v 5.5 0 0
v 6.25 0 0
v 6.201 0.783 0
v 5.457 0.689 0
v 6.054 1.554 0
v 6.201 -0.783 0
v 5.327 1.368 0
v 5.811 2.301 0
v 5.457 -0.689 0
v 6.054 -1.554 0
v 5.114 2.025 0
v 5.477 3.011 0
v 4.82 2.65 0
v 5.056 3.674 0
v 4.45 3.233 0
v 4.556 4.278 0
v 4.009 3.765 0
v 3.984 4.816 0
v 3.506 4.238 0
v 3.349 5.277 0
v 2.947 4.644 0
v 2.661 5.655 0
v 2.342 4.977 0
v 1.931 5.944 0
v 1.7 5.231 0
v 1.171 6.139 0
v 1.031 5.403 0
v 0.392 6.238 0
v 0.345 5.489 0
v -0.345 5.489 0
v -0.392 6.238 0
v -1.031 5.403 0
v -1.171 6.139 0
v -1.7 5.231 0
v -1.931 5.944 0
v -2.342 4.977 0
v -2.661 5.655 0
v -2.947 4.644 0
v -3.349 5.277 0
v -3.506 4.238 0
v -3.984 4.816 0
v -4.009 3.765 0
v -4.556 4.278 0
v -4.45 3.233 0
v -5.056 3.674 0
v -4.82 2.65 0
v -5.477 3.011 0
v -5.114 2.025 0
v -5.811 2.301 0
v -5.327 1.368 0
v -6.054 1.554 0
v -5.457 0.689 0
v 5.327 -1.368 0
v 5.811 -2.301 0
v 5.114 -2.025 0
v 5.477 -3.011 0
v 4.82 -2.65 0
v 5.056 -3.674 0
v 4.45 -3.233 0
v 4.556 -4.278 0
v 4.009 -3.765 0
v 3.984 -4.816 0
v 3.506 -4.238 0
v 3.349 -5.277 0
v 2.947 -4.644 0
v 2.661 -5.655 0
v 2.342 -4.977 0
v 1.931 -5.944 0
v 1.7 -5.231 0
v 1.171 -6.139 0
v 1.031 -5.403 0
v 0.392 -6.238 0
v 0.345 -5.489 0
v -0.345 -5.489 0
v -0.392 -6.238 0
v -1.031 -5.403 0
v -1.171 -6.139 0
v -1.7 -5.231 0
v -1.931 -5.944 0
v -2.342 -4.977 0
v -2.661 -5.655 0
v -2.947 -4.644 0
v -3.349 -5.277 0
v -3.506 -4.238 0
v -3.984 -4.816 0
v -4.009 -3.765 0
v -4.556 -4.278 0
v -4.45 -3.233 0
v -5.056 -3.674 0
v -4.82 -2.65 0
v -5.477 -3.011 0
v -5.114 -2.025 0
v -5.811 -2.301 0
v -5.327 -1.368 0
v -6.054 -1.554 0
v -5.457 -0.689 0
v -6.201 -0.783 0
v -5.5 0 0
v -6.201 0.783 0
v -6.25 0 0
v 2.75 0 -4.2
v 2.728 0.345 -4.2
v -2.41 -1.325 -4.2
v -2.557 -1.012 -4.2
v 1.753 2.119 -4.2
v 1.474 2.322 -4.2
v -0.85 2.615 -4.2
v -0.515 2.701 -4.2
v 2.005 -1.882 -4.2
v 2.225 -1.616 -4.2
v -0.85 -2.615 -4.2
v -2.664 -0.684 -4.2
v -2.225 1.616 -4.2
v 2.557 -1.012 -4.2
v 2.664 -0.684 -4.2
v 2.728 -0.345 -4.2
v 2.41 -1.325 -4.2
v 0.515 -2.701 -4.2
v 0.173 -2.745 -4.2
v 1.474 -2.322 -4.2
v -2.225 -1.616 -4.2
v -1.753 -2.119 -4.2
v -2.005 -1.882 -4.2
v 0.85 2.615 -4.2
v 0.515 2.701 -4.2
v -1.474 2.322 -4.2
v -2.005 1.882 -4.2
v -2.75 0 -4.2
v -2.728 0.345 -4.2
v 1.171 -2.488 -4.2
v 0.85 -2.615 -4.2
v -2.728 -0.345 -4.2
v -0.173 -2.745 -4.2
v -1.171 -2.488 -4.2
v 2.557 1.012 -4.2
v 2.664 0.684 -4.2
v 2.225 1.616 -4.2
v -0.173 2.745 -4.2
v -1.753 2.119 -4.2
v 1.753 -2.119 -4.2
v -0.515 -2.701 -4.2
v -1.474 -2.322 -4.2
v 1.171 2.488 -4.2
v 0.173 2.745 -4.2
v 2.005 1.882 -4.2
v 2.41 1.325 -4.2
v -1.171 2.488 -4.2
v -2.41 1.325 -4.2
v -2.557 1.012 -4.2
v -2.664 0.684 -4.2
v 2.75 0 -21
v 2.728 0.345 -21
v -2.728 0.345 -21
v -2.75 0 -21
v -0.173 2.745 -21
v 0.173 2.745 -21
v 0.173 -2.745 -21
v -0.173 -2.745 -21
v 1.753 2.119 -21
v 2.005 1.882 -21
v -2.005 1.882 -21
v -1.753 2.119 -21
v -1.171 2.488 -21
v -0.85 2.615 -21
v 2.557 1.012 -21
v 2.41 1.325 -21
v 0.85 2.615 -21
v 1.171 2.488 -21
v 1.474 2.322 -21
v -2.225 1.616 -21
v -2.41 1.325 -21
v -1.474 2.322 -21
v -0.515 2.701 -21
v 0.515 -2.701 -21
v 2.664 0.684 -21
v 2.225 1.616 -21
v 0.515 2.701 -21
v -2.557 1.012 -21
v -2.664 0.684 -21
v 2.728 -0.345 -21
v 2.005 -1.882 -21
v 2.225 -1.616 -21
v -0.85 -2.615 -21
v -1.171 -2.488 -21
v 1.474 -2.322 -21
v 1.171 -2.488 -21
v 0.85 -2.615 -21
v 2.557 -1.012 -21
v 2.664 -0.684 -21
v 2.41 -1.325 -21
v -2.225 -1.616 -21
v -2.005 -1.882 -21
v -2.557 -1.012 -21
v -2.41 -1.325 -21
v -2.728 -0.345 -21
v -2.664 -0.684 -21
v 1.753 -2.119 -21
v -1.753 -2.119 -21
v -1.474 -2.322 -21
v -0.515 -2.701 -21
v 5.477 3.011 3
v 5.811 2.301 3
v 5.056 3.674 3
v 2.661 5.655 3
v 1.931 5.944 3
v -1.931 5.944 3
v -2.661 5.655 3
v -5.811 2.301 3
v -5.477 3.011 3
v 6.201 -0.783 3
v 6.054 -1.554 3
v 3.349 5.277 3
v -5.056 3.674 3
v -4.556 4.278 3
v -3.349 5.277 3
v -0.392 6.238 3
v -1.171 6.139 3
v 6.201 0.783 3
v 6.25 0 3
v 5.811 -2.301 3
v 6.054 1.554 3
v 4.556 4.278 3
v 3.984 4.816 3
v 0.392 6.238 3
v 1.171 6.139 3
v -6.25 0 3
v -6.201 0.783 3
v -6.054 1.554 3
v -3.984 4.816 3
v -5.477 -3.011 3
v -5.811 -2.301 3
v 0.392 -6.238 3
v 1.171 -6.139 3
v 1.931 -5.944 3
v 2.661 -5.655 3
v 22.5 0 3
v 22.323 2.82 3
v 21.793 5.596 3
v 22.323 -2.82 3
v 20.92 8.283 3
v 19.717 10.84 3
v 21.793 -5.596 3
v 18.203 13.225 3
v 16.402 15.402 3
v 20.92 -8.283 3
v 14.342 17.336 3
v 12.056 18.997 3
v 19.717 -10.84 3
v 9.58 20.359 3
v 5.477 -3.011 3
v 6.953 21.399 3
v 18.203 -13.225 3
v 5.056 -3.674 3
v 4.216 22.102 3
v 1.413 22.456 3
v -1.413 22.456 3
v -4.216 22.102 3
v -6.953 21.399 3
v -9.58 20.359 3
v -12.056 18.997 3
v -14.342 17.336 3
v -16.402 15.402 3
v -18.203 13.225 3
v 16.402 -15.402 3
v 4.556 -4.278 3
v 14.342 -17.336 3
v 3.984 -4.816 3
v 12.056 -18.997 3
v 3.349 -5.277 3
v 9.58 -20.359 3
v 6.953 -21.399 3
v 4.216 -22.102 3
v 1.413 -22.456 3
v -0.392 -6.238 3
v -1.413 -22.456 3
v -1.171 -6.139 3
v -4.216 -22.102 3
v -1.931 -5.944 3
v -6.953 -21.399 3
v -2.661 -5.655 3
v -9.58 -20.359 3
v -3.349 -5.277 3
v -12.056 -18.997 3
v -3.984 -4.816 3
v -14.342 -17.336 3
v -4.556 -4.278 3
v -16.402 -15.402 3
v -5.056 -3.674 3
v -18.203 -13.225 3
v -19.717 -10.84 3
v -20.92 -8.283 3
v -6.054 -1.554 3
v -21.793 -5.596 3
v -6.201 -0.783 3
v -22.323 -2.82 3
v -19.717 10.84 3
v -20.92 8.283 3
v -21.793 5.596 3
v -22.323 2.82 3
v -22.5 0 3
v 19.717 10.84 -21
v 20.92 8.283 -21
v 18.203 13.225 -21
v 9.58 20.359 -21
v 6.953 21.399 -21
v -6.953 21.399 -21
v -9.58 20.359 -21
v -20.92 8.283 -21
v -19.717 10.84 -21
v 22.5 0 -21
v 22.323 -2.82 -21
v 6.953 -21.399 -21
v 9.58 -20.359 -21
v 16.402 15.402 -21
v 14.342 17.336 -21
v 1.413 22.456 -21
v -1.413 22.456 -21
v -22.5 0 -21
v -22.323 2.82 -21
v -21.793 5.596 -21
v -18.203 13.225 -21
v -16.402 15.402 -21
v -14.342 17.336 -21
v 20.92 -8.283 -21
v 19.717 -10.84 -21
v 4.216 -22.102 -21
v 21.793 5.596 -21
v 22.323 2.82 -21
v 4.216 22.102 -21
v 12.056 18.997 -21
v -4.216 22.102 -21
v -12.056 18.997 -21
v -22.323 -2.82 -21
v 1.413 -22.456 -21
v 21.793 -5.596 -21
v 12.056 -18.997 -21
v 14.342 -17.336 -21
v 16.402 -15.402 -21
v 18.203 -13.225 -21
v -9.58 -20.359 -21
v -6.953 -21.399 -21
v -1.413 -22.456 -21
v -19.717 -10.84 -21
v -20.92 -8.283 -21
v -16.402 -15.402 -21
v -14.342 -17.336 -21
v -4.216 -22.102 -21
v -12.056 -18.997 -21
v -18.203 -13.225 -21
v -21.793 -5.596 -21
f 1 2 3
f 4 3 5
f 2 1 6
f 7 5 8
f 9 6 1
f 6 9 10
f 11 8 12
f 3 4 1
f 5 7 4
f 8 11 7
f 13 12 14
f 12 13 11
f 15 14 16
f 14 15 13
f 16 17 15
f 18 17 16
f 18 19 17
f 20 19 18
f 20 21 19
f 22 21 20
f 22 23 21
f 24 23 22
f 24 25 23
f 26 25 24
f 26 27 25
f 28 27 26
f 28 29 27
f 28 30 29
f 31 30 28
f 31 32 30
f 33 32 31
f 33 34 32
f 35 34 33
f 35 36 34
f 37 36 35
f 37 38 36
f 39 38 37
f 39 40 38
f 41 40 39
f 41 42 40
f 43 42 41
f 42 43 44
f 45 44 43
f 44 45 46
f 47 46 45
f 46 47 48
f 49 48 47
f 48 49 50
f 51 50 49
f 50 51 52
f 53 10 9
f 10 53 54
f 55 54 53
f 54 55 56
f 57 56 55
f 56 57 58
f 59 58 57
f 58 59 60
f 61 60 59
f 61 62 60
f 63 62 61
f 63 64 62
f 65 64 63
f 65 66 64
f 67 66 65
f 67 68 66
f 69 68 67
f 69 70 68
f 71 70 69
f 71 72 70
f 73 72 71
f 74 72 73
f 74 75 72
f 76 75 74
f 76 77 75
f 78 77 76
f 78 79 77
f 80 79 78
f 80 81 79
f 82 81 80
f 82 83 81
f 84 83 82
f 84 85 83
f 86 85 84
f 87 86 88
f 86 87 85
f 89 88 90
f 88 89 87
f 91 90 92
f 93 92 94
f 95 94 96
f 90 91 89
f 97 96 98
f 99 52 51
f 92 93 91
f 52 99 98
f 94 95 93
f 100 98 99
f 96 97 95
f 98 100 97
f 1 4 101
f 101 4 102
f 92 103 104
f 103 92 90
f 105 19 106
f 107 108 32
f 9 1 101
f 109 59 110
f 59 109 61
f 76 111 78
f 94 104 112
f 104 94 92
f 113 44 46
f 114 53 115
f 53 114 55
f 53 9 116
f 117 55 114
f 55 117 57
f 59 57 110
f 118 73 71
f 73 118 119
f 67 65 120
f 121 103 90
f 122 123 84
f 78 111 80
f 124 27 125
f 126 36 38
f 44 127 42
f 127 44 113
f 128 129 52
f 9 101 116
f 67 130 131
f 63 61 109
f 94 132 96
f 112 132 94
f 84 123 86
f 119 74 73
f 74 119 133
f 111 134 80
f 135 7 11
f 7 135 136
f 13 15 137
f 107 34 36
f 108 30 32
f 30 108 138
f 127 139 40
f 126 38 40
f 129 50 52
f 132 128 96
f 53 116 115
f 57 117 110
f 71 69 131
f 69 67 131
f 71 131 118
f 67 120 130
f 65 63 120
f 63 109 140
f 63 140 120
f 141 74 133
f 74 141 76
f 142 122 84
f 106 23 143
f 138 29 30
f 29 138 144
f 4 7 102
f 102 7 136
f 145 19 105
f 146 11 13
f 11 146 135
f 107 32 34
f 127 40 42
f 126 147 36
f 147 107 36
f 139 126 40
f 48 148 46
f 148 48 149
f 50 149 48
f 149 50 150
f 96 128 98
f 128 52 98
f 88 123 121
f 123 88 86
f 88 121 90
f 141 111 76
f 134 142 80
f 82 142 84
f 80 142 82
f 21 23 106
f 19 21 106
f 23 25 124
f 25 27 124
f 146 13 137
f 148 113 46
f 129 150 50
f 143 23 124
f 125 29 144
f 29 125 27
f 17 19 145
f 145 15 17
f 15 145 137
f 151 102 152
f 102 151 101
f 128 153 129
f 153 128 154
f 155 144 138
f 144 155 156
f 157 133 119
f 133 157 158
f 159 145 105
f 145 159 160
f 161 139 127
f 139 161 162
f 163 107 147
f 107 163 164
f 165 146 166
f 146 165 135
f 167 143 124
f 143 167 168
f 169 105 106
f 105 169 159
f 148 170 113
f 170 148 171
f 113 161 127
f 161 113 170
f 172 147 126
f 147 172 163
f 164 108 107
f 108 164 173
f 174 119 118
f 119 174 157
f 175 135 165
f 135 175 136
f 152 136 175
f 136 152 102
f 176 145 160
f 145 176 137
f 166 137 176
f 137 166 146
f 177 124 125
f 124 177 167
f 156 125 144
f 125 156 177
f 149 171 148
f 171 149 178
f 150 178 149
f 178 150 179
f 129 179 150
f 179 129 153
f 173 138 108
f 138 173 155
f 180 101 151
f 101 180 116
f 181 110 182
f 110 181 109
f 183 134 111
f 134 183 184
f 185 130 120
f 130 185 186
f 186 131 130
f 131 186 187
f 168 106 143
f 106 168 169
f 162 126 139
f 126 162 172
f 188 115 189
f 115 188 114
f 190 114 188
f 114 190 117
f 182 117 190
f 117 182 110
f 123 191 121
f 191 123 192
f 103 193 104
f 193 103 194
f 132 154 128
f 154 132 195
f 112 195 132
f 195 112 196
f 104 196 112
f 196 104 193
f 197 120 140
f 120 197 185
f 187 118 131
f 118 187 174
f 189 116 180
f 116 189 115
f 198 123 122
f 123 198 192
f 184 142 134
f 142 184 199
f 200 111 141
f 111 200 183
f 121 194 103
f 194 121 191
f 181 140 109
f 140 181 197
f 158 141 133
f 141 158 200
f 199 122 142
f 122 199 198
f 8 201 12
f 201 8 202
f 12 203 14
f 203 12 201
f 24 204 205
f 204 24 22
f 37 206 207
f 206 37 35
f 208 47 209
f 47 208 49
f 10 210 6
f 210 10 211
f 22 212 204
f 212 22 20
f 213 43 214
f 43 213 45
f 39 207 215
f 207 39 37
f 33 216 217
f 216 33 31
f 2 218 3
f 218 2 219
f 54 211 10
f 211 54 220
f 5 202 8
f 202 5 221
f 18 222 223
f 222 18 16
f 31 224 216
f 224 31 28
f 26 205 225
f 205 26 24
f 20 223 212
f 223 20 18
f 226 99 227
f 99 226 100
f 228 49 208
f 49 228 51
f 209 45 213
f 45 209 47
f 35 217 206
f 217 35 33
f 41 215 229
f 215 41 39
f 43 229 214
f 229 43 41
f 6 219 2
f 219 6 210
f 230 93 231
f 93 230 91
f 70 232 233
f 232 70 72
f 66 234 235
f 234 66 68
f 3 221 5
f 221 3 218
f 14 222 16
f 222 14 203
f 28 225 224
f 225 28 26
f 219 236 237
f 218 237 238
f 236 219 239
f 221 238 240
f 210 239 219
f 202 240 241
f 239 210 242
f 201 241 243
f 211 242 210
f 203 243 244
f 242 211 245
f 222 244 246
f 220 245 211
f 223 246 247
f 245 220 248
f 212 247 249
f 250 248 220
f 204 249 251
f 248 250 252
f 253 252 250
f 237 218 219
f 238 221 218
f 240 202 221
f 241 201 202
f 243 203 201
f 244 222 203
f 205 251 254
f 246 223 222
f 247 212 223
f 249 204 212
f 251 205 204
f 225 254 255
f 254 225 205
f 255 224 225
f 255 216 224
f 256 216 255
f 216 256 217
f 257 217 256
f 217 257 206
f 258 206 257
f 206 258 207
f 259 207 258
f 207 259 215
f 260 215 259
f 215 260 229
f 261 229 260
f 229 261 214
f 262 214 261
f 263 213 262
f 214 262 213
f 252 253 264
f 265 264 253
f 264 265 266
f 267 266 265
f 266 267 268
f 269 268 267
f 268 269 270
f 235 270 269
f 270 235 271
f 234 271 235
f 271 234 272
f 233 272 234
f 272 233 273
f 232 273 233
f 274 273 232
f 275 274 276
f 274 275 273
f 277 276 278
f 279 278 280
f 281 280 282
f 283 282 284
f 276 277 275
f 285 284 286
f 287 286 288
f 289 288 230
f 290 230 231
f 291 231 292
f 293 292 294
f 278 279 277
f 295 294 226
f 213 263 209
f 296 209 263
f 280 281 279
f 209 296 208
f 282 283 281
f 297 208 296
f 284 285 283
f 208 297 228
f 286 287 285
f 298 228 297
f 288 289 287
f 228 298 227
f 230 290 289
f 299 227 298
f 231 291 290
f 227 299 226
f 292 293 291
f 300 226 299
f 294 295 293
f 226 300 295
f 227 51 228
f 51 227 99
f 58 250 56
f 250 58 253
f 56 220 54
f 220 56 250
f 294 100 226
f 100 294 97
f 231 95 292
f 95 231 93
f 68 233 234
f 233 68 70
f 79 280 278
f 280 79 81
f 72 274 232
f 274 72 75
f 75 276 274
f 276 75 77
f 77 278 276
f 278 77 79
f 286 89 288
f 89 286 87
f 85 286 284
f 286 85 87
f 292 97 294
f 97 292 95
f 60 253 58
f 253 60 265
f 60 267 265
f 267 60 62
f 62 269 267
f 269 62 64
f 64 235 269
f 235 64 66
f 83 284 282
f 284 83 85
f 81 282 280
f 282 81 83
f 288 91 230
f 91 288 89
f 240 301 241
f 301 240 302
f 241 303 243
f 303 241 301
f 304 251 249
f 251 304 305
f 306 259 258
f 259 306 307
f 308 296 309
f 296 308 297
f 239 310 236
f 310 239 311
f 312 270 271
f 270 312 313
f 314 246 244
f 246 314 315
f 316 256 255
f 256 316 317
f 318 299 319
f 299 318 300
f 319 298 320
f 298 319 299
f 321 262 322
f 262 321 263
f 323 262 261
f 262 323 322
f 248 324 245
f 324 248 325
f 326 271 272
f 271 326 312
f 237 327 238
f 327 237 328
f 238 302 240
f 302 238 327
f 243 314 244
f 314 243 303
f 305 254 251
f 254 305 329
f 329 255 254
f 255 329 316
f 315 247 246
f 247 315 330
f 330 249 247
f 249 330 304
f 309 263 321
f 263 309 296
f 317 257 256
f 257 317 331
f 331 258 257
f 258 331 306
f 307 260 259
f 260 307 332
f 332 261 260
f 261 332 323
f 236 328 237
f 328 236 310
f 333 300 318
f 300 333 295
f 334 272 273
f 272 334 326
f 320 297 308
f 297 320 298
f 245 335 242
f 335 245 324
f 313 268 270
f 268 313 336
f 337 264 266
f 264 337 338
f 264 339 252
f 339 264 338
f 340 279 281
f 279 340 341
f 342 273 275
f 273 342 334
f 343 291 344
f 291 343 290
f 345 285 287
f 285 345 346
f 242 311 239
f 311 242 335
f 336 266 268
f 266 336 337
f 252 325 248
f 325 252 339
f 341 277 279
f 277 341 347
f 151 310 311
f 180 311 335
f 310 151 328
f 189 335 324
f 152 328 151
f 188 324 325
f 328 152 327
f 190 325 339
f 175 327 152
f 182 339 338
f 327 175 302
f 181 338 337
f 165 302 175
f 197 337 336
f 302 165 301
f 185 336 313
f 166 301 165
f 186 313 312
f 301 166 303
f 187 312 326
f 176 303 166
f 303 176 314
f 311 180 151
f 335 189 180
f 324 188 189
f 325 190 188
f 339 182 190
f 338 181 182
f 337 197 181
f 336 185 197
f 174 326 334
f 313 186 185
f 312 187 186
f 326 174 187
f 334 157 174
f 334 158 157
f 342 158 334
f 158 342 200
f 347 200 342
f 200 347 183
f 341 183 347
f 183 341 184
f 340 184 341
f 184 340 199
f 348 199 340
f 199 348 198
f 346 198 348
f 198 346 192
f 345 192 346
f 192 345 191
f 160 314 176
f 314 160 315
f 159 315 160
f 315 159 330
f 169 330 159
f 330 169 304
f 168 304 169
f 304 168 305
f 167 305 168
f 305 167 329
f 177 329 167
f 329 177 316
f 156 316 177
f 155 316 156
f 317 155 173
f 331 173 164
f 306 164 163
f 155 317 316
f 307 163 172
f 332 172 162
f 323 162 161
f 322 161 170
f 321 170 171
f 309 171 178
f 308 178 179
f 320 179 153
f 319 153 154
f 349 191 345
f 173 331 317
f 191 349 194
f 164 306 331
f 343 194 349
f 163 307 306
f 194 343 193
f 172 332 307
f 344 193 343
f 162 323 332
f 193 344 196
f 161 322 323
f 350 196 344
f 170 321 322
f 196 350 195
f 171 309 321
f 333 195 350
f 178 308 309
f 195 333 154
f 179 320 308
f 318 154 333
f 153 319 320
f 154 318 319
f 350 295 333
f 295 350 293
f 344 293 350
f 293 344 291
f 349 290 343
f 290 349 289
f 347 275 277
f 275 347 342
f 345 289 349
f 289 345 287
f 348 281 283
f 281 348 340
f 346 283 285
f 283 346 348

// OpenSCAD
$fn = 50;


difference() {
	union() {
		translate(v = [0, 0, -21.0000000000]) {
			cylinder(h = 24, r = 22.5000000000);
		}
	}
	union() {
		translate(v = [0, 0, 0]) {
			rotate(a = [0, 0, 0]) {
				difference() {
					union() {
						translate(v = [0, 0, -24.0000000000]) {
							cylinder(h = 24, r = 2.2500000000);
						}
						translate(v = [0, 0, -4.2000000000]) {
							cylinder(h = 4.2000000000, r1 = 2.7500000000, r2 = 5.5000000000);
						}
						translate(v = [0, 0, -24.0000000000]) {
							cylinder(h = 24, r = 2.7500000000);
						}
						translate(v = [0, 0, -24.0000000000]) {
							cylinder(h = 24, r = 2.2500000000);
						}
					}
					union();
				}
			}
		}
		#cylinder(h = 3, r = 6.2500000000);
	}
}
